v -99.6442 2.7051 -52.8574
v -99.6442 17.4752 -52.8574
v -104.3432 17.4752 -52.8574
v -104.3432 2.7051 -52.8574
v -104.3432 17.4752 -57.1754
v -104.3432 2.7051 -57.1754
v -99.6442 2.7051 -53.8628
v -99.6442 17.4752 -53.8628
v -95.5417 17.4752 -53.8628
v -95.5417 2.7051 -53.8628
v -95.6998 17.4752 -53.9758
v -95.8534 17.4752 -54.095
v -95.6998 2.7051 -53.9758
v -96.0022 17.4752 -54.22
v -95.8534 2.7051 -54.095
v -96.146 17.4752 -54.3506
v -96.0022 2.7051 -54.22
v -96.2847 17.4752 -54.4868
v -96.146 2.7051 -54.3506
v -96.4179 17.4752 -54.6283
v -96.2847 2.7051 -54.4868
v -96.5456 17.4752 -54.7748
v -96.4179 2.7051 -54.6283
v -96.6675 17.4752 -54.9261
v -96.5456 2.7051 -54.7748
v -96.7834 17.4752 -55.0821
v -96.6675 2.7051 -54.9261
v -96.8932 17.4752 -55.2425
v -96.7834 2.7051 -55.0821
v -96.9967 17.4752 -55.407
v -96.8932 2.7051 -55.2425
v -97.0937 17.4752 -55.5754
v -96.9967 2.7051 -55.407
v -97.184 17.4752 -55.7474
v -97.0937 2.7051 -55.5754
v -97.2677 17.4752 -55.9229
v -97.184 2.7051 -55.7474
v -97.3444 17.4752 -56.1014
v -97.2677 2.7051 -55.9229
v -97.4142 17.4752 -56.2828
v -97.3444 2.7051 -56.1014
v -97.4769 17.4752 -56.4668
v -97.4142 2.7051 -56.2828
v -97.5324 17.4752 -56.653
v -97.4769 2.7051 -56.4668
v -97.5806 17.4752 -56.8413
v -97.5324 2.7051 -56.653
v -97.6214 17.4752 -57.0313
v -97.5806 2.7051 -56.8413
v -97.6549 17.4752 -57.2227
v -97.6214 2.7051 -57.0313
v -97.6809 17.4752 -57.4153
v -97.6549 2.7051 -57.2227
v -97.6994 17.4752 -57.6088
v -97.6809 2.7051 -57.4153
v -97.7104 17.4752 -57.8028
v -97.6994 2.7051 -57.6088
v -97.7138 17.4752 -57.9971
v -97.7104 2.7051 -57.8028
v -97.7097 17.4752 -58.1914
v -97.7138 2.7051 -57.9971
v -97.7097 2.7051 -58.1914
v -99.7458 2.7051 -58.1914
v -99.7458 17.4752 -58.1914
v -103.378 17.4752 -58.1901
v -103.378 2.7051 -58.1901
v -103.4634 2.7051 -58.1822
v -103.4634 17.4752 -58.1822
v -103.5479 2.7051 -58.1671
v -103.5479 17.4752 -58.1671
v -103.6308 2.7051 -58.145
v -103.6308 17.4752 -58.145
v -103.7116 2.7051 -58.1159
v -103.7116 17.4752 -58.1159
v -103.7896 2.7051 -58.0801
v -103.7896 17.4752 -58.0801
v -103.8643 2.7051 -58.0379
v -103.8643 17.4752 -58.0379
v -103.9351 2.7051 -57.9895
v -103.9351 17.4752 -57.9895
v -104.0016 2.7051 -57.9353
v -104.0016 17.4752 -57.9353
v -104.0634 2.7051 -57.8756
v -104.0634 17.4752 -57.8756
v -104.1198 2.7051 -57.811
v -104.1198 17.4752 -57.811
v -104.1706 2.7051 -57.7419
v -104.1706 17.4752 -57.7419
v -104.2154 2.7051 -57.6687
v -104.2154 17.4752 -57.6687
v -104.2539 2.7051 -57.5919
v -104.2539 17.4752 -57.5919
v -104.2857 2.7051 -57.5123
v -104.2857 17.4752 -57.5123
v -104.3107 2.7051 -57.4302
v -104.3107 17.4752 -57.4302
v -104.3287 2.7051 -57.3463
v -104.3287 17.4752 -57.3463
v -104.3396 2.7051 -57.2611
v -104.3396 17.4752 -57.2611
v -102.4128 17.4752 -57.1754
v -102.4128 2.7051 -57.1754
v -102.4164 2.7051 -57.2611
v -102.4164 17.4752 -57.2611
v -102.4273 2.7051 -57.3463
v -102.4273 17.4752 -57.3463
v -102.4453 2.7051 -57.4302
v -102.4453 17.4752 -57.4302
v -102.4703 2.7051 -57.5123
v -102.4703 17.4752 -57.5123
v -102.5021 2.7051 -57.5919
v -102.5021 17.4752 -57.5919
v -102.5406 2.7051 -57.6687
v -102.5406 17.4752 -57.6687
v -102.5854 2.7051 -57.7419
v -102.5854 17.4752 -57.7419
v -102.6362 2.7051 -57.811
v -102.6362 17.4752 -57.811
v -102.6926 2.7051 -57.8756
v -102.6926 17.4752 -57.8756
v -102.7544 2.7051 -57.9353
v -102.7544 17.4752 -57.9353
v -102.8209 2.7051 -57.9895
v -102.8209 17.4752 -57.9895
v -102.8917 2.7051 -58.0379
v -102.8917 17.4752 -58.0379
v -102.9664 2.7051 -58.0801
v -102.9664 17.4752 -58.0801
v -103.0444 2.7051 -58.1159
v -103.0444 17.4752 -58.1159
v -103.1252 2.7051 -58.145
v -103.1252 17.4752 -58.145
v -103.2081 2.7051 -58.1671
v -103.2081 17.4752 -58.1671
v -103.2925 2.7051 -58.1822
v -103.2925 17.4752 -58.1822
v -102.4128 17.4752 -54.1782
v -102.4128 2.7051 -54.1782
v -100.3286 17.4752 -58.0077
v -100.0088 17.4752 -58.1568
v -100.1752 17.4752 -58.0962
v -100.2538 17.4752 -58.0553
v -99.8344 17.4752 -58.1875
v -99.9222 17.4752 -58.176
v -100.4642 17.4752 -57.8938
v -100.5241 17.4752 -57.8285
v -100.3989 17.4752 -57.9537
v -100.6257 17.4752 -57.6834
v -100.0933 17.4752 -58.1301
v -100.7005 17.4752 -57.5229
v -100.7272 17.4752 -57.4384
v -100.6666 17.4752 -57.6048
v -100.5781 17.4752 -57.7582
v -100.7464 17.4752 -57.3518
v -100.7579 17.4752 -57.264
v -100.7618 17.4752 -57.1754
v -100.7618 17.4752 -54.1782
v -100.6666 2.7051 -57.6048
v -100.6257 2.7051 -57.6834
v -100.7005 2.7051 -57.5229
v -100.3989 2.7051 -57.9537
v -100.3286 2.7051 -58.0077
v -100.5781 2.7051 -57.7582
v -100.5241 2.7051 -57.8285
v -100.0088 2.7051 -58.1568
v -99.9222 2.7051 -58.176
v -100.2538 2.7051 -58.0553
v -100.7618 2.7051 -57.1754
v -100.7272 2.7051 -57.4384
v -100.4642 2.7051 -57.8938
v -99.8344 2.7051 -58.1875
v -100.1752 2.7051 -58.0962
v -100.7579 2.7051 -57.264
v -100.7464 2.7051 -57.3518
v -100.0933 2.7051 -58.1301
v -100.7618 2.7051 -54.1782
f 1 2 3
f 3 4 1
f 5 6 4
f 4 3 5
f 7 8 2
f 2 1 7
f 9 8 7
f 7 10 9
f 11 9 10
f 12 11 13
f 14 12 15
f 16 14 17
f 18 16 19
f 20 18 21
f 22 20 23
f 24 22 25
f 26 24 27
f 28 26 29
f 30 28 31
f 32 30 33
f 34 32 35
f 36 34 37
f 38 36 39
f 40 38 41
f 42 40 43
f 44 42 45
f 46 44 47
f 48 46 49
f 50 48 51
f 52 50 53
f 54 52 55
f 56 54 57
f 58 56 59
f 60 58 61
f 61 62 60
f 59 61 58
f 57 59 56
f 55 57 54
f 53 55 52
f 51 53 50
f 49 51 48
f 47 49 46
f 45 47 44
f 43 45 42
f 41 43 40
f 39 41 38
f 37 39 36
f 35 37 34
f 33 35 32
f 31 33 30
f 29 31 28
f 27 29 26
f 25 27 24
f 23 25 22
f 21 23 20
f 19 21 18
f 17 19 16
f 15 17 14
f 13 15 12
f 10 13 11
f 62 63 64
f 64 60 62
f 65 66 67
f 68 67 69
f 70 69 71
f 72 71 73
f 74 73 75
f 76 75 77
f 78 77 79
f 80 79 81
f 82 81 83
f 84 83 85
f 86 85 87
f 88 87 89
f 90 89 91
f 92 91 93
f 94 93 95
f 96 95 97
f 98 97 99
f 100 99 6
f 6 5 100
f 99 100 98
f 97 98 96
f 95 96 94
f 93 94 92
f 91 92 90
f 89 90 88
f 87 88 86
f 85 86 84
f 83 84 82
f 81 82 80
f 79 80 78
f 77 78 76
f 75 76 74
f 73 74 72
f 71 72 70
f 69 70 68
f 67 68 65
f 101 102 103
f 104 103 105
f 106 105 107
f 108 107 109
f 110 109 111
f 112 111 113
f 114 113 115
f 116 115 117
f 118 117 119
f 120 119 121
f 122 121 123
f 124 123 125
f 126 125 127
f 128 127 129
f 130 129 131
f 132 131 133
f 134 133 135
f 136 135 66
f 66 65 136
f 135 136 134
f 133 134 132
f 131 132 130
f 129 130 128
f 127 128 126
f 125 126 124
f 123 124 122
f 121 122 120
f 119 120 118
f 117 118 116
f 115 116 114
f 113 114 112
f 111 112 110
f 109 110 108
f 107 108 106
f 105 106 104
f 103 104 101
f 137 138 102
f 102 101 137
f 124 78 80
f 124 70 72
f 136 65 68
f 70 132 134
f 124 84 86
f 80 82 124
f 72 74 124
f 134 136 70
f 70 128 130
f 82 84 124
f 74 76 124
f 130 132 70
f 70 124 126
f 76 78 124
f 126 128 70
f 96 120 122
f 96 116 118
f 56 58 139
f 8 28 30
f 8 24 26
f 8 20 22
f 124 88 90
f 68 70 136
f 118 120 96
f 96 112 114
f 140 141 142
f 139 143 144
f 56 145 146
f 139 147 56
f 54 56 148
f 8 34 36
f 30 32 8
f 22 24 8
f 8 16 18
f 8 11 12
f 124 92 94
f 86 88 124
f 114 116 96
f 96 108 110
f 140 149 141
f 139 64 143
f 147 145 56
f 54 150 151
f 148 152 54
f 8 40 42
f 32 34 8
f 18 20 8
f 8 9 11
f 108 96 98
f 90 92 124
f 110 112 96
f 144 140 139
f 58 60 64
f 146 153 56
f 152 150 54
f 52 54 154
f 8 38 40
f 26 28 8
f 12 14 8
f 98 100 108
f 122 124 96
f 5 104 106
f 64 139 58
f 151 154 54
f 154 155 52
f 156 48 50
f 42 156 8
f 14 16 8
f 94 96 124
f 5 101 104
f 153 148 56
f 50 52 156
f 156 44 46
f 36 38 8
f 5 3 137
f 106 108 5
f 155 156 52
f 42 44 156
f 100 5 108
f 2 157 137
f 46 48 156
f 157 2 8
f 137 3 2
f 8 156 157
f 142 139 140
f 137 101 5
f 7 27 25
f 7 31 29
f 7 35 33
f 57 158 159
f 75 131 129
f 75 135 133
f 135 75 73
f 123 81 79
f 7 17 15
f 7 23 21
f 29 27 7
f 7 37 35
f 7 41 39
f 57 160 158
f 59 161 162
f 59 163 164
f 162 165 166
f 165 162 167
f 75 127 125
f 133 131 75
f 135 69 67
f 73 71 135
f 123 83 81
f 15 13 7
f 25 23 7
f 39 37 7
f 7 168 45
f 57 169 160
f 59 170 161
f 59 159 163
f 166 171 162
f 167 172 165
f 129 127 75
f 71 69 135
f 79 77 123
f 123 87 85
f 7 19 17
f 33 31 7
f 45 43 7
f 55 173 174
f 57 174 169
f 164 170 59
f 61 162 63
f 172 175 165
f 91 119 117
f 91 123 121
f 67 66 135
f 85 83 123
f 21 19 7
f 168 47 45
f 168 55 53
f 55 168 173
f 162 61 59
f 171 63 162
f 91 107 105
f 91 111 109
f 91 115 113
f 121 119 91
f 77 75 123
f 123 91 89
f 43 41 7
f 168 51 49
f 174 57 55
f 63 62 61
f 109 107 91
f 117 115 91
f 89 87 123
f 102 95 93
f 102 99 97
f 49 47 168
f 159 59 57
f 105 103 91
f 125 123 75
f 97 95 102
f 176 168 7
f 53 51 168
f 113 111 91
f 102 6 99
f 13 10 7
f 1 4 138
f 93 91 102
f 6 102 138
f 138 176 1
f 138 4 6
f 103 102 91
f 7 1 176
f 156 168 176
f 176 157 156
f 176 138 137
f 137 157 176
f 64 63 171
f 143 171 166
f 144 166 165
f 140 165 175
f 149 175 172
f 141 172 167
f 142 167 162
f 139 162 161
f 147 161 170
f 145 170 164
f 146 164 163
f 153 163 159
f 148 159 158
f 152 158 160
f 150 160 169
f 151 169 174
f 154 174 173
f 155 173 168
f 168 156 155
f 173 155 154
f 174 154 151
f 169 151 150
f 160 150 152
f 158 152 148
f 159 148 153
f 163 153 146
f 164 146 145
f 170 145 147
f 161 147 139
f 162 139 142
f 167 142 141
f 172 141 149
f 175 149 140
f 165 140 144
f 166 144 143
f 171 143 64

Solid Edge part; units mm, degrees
sketch "Sketch1" plane through (-38.046, 17.4752, -58.1274) normal (0, -1, 0) x (1, 0, 0)
  line L0 (-62.7158, 3.9492) -> (-62.7158, -0.064)
  line L1 (-62.7158, -0.064) -> (-56.1372, -0.064)
  line L2 (-56.1372, 5.27) -> (-56.1372, -0.064)
  line L3 (-66.2972, 5.27) -> (-56.1372, 5.27)
  line L4 (-66.2972, -0.064) -> (-66.2972, 5.27)
  line L5 (-66.2972, -0.064) -> (-64.3668, -0.064)
  line L6 (-64.3668, -0.064) -> (-64.3668, 3.9492)
  line L7 (-64.3668, 3.9492) -> (-62.7158, 3.9492)
extrude "Protrusion1" add sketch "Sketch1" along normal up to surface (14.7701 mm away)
sketch "Sketch2" plane through (-38.046, 17.4752, -58.1274) normal (0, -1, 0) x (1, 0, 0)
  circle A0 centre (-54.664, 0.1392) radius 5.0038
extrude "Cutout1" cut sketch "Sketch2" along normal through all
sketch "Sketch3" plane through (-38.046, 17.4752, -58.1274) normal (0, -1, 0) x (1, 0, 0)
  line L0 (-61.5982, 5.27) -> (-61.5982, 4.2646)
  line L1 (-61.5982, 4.2646) -> (-56.1372, 4.2646)
  line L2 (-56.1372, 4.2646) -> (-56.1372, 5.27)
  line L3 (-56.1372, 5.27) -> (-61.5982, 5.27)
extrude "Cutout2" cut sketch "Sketch3" along normal through all
fillet "Round_1" radius 1.016 3 edges at (-100.7618, 10.0901, -58.1914) (-102.4128, 10.0901, -58.1914) (-104.3432, 10.0901, -58.1914)
properties material "Gold"
